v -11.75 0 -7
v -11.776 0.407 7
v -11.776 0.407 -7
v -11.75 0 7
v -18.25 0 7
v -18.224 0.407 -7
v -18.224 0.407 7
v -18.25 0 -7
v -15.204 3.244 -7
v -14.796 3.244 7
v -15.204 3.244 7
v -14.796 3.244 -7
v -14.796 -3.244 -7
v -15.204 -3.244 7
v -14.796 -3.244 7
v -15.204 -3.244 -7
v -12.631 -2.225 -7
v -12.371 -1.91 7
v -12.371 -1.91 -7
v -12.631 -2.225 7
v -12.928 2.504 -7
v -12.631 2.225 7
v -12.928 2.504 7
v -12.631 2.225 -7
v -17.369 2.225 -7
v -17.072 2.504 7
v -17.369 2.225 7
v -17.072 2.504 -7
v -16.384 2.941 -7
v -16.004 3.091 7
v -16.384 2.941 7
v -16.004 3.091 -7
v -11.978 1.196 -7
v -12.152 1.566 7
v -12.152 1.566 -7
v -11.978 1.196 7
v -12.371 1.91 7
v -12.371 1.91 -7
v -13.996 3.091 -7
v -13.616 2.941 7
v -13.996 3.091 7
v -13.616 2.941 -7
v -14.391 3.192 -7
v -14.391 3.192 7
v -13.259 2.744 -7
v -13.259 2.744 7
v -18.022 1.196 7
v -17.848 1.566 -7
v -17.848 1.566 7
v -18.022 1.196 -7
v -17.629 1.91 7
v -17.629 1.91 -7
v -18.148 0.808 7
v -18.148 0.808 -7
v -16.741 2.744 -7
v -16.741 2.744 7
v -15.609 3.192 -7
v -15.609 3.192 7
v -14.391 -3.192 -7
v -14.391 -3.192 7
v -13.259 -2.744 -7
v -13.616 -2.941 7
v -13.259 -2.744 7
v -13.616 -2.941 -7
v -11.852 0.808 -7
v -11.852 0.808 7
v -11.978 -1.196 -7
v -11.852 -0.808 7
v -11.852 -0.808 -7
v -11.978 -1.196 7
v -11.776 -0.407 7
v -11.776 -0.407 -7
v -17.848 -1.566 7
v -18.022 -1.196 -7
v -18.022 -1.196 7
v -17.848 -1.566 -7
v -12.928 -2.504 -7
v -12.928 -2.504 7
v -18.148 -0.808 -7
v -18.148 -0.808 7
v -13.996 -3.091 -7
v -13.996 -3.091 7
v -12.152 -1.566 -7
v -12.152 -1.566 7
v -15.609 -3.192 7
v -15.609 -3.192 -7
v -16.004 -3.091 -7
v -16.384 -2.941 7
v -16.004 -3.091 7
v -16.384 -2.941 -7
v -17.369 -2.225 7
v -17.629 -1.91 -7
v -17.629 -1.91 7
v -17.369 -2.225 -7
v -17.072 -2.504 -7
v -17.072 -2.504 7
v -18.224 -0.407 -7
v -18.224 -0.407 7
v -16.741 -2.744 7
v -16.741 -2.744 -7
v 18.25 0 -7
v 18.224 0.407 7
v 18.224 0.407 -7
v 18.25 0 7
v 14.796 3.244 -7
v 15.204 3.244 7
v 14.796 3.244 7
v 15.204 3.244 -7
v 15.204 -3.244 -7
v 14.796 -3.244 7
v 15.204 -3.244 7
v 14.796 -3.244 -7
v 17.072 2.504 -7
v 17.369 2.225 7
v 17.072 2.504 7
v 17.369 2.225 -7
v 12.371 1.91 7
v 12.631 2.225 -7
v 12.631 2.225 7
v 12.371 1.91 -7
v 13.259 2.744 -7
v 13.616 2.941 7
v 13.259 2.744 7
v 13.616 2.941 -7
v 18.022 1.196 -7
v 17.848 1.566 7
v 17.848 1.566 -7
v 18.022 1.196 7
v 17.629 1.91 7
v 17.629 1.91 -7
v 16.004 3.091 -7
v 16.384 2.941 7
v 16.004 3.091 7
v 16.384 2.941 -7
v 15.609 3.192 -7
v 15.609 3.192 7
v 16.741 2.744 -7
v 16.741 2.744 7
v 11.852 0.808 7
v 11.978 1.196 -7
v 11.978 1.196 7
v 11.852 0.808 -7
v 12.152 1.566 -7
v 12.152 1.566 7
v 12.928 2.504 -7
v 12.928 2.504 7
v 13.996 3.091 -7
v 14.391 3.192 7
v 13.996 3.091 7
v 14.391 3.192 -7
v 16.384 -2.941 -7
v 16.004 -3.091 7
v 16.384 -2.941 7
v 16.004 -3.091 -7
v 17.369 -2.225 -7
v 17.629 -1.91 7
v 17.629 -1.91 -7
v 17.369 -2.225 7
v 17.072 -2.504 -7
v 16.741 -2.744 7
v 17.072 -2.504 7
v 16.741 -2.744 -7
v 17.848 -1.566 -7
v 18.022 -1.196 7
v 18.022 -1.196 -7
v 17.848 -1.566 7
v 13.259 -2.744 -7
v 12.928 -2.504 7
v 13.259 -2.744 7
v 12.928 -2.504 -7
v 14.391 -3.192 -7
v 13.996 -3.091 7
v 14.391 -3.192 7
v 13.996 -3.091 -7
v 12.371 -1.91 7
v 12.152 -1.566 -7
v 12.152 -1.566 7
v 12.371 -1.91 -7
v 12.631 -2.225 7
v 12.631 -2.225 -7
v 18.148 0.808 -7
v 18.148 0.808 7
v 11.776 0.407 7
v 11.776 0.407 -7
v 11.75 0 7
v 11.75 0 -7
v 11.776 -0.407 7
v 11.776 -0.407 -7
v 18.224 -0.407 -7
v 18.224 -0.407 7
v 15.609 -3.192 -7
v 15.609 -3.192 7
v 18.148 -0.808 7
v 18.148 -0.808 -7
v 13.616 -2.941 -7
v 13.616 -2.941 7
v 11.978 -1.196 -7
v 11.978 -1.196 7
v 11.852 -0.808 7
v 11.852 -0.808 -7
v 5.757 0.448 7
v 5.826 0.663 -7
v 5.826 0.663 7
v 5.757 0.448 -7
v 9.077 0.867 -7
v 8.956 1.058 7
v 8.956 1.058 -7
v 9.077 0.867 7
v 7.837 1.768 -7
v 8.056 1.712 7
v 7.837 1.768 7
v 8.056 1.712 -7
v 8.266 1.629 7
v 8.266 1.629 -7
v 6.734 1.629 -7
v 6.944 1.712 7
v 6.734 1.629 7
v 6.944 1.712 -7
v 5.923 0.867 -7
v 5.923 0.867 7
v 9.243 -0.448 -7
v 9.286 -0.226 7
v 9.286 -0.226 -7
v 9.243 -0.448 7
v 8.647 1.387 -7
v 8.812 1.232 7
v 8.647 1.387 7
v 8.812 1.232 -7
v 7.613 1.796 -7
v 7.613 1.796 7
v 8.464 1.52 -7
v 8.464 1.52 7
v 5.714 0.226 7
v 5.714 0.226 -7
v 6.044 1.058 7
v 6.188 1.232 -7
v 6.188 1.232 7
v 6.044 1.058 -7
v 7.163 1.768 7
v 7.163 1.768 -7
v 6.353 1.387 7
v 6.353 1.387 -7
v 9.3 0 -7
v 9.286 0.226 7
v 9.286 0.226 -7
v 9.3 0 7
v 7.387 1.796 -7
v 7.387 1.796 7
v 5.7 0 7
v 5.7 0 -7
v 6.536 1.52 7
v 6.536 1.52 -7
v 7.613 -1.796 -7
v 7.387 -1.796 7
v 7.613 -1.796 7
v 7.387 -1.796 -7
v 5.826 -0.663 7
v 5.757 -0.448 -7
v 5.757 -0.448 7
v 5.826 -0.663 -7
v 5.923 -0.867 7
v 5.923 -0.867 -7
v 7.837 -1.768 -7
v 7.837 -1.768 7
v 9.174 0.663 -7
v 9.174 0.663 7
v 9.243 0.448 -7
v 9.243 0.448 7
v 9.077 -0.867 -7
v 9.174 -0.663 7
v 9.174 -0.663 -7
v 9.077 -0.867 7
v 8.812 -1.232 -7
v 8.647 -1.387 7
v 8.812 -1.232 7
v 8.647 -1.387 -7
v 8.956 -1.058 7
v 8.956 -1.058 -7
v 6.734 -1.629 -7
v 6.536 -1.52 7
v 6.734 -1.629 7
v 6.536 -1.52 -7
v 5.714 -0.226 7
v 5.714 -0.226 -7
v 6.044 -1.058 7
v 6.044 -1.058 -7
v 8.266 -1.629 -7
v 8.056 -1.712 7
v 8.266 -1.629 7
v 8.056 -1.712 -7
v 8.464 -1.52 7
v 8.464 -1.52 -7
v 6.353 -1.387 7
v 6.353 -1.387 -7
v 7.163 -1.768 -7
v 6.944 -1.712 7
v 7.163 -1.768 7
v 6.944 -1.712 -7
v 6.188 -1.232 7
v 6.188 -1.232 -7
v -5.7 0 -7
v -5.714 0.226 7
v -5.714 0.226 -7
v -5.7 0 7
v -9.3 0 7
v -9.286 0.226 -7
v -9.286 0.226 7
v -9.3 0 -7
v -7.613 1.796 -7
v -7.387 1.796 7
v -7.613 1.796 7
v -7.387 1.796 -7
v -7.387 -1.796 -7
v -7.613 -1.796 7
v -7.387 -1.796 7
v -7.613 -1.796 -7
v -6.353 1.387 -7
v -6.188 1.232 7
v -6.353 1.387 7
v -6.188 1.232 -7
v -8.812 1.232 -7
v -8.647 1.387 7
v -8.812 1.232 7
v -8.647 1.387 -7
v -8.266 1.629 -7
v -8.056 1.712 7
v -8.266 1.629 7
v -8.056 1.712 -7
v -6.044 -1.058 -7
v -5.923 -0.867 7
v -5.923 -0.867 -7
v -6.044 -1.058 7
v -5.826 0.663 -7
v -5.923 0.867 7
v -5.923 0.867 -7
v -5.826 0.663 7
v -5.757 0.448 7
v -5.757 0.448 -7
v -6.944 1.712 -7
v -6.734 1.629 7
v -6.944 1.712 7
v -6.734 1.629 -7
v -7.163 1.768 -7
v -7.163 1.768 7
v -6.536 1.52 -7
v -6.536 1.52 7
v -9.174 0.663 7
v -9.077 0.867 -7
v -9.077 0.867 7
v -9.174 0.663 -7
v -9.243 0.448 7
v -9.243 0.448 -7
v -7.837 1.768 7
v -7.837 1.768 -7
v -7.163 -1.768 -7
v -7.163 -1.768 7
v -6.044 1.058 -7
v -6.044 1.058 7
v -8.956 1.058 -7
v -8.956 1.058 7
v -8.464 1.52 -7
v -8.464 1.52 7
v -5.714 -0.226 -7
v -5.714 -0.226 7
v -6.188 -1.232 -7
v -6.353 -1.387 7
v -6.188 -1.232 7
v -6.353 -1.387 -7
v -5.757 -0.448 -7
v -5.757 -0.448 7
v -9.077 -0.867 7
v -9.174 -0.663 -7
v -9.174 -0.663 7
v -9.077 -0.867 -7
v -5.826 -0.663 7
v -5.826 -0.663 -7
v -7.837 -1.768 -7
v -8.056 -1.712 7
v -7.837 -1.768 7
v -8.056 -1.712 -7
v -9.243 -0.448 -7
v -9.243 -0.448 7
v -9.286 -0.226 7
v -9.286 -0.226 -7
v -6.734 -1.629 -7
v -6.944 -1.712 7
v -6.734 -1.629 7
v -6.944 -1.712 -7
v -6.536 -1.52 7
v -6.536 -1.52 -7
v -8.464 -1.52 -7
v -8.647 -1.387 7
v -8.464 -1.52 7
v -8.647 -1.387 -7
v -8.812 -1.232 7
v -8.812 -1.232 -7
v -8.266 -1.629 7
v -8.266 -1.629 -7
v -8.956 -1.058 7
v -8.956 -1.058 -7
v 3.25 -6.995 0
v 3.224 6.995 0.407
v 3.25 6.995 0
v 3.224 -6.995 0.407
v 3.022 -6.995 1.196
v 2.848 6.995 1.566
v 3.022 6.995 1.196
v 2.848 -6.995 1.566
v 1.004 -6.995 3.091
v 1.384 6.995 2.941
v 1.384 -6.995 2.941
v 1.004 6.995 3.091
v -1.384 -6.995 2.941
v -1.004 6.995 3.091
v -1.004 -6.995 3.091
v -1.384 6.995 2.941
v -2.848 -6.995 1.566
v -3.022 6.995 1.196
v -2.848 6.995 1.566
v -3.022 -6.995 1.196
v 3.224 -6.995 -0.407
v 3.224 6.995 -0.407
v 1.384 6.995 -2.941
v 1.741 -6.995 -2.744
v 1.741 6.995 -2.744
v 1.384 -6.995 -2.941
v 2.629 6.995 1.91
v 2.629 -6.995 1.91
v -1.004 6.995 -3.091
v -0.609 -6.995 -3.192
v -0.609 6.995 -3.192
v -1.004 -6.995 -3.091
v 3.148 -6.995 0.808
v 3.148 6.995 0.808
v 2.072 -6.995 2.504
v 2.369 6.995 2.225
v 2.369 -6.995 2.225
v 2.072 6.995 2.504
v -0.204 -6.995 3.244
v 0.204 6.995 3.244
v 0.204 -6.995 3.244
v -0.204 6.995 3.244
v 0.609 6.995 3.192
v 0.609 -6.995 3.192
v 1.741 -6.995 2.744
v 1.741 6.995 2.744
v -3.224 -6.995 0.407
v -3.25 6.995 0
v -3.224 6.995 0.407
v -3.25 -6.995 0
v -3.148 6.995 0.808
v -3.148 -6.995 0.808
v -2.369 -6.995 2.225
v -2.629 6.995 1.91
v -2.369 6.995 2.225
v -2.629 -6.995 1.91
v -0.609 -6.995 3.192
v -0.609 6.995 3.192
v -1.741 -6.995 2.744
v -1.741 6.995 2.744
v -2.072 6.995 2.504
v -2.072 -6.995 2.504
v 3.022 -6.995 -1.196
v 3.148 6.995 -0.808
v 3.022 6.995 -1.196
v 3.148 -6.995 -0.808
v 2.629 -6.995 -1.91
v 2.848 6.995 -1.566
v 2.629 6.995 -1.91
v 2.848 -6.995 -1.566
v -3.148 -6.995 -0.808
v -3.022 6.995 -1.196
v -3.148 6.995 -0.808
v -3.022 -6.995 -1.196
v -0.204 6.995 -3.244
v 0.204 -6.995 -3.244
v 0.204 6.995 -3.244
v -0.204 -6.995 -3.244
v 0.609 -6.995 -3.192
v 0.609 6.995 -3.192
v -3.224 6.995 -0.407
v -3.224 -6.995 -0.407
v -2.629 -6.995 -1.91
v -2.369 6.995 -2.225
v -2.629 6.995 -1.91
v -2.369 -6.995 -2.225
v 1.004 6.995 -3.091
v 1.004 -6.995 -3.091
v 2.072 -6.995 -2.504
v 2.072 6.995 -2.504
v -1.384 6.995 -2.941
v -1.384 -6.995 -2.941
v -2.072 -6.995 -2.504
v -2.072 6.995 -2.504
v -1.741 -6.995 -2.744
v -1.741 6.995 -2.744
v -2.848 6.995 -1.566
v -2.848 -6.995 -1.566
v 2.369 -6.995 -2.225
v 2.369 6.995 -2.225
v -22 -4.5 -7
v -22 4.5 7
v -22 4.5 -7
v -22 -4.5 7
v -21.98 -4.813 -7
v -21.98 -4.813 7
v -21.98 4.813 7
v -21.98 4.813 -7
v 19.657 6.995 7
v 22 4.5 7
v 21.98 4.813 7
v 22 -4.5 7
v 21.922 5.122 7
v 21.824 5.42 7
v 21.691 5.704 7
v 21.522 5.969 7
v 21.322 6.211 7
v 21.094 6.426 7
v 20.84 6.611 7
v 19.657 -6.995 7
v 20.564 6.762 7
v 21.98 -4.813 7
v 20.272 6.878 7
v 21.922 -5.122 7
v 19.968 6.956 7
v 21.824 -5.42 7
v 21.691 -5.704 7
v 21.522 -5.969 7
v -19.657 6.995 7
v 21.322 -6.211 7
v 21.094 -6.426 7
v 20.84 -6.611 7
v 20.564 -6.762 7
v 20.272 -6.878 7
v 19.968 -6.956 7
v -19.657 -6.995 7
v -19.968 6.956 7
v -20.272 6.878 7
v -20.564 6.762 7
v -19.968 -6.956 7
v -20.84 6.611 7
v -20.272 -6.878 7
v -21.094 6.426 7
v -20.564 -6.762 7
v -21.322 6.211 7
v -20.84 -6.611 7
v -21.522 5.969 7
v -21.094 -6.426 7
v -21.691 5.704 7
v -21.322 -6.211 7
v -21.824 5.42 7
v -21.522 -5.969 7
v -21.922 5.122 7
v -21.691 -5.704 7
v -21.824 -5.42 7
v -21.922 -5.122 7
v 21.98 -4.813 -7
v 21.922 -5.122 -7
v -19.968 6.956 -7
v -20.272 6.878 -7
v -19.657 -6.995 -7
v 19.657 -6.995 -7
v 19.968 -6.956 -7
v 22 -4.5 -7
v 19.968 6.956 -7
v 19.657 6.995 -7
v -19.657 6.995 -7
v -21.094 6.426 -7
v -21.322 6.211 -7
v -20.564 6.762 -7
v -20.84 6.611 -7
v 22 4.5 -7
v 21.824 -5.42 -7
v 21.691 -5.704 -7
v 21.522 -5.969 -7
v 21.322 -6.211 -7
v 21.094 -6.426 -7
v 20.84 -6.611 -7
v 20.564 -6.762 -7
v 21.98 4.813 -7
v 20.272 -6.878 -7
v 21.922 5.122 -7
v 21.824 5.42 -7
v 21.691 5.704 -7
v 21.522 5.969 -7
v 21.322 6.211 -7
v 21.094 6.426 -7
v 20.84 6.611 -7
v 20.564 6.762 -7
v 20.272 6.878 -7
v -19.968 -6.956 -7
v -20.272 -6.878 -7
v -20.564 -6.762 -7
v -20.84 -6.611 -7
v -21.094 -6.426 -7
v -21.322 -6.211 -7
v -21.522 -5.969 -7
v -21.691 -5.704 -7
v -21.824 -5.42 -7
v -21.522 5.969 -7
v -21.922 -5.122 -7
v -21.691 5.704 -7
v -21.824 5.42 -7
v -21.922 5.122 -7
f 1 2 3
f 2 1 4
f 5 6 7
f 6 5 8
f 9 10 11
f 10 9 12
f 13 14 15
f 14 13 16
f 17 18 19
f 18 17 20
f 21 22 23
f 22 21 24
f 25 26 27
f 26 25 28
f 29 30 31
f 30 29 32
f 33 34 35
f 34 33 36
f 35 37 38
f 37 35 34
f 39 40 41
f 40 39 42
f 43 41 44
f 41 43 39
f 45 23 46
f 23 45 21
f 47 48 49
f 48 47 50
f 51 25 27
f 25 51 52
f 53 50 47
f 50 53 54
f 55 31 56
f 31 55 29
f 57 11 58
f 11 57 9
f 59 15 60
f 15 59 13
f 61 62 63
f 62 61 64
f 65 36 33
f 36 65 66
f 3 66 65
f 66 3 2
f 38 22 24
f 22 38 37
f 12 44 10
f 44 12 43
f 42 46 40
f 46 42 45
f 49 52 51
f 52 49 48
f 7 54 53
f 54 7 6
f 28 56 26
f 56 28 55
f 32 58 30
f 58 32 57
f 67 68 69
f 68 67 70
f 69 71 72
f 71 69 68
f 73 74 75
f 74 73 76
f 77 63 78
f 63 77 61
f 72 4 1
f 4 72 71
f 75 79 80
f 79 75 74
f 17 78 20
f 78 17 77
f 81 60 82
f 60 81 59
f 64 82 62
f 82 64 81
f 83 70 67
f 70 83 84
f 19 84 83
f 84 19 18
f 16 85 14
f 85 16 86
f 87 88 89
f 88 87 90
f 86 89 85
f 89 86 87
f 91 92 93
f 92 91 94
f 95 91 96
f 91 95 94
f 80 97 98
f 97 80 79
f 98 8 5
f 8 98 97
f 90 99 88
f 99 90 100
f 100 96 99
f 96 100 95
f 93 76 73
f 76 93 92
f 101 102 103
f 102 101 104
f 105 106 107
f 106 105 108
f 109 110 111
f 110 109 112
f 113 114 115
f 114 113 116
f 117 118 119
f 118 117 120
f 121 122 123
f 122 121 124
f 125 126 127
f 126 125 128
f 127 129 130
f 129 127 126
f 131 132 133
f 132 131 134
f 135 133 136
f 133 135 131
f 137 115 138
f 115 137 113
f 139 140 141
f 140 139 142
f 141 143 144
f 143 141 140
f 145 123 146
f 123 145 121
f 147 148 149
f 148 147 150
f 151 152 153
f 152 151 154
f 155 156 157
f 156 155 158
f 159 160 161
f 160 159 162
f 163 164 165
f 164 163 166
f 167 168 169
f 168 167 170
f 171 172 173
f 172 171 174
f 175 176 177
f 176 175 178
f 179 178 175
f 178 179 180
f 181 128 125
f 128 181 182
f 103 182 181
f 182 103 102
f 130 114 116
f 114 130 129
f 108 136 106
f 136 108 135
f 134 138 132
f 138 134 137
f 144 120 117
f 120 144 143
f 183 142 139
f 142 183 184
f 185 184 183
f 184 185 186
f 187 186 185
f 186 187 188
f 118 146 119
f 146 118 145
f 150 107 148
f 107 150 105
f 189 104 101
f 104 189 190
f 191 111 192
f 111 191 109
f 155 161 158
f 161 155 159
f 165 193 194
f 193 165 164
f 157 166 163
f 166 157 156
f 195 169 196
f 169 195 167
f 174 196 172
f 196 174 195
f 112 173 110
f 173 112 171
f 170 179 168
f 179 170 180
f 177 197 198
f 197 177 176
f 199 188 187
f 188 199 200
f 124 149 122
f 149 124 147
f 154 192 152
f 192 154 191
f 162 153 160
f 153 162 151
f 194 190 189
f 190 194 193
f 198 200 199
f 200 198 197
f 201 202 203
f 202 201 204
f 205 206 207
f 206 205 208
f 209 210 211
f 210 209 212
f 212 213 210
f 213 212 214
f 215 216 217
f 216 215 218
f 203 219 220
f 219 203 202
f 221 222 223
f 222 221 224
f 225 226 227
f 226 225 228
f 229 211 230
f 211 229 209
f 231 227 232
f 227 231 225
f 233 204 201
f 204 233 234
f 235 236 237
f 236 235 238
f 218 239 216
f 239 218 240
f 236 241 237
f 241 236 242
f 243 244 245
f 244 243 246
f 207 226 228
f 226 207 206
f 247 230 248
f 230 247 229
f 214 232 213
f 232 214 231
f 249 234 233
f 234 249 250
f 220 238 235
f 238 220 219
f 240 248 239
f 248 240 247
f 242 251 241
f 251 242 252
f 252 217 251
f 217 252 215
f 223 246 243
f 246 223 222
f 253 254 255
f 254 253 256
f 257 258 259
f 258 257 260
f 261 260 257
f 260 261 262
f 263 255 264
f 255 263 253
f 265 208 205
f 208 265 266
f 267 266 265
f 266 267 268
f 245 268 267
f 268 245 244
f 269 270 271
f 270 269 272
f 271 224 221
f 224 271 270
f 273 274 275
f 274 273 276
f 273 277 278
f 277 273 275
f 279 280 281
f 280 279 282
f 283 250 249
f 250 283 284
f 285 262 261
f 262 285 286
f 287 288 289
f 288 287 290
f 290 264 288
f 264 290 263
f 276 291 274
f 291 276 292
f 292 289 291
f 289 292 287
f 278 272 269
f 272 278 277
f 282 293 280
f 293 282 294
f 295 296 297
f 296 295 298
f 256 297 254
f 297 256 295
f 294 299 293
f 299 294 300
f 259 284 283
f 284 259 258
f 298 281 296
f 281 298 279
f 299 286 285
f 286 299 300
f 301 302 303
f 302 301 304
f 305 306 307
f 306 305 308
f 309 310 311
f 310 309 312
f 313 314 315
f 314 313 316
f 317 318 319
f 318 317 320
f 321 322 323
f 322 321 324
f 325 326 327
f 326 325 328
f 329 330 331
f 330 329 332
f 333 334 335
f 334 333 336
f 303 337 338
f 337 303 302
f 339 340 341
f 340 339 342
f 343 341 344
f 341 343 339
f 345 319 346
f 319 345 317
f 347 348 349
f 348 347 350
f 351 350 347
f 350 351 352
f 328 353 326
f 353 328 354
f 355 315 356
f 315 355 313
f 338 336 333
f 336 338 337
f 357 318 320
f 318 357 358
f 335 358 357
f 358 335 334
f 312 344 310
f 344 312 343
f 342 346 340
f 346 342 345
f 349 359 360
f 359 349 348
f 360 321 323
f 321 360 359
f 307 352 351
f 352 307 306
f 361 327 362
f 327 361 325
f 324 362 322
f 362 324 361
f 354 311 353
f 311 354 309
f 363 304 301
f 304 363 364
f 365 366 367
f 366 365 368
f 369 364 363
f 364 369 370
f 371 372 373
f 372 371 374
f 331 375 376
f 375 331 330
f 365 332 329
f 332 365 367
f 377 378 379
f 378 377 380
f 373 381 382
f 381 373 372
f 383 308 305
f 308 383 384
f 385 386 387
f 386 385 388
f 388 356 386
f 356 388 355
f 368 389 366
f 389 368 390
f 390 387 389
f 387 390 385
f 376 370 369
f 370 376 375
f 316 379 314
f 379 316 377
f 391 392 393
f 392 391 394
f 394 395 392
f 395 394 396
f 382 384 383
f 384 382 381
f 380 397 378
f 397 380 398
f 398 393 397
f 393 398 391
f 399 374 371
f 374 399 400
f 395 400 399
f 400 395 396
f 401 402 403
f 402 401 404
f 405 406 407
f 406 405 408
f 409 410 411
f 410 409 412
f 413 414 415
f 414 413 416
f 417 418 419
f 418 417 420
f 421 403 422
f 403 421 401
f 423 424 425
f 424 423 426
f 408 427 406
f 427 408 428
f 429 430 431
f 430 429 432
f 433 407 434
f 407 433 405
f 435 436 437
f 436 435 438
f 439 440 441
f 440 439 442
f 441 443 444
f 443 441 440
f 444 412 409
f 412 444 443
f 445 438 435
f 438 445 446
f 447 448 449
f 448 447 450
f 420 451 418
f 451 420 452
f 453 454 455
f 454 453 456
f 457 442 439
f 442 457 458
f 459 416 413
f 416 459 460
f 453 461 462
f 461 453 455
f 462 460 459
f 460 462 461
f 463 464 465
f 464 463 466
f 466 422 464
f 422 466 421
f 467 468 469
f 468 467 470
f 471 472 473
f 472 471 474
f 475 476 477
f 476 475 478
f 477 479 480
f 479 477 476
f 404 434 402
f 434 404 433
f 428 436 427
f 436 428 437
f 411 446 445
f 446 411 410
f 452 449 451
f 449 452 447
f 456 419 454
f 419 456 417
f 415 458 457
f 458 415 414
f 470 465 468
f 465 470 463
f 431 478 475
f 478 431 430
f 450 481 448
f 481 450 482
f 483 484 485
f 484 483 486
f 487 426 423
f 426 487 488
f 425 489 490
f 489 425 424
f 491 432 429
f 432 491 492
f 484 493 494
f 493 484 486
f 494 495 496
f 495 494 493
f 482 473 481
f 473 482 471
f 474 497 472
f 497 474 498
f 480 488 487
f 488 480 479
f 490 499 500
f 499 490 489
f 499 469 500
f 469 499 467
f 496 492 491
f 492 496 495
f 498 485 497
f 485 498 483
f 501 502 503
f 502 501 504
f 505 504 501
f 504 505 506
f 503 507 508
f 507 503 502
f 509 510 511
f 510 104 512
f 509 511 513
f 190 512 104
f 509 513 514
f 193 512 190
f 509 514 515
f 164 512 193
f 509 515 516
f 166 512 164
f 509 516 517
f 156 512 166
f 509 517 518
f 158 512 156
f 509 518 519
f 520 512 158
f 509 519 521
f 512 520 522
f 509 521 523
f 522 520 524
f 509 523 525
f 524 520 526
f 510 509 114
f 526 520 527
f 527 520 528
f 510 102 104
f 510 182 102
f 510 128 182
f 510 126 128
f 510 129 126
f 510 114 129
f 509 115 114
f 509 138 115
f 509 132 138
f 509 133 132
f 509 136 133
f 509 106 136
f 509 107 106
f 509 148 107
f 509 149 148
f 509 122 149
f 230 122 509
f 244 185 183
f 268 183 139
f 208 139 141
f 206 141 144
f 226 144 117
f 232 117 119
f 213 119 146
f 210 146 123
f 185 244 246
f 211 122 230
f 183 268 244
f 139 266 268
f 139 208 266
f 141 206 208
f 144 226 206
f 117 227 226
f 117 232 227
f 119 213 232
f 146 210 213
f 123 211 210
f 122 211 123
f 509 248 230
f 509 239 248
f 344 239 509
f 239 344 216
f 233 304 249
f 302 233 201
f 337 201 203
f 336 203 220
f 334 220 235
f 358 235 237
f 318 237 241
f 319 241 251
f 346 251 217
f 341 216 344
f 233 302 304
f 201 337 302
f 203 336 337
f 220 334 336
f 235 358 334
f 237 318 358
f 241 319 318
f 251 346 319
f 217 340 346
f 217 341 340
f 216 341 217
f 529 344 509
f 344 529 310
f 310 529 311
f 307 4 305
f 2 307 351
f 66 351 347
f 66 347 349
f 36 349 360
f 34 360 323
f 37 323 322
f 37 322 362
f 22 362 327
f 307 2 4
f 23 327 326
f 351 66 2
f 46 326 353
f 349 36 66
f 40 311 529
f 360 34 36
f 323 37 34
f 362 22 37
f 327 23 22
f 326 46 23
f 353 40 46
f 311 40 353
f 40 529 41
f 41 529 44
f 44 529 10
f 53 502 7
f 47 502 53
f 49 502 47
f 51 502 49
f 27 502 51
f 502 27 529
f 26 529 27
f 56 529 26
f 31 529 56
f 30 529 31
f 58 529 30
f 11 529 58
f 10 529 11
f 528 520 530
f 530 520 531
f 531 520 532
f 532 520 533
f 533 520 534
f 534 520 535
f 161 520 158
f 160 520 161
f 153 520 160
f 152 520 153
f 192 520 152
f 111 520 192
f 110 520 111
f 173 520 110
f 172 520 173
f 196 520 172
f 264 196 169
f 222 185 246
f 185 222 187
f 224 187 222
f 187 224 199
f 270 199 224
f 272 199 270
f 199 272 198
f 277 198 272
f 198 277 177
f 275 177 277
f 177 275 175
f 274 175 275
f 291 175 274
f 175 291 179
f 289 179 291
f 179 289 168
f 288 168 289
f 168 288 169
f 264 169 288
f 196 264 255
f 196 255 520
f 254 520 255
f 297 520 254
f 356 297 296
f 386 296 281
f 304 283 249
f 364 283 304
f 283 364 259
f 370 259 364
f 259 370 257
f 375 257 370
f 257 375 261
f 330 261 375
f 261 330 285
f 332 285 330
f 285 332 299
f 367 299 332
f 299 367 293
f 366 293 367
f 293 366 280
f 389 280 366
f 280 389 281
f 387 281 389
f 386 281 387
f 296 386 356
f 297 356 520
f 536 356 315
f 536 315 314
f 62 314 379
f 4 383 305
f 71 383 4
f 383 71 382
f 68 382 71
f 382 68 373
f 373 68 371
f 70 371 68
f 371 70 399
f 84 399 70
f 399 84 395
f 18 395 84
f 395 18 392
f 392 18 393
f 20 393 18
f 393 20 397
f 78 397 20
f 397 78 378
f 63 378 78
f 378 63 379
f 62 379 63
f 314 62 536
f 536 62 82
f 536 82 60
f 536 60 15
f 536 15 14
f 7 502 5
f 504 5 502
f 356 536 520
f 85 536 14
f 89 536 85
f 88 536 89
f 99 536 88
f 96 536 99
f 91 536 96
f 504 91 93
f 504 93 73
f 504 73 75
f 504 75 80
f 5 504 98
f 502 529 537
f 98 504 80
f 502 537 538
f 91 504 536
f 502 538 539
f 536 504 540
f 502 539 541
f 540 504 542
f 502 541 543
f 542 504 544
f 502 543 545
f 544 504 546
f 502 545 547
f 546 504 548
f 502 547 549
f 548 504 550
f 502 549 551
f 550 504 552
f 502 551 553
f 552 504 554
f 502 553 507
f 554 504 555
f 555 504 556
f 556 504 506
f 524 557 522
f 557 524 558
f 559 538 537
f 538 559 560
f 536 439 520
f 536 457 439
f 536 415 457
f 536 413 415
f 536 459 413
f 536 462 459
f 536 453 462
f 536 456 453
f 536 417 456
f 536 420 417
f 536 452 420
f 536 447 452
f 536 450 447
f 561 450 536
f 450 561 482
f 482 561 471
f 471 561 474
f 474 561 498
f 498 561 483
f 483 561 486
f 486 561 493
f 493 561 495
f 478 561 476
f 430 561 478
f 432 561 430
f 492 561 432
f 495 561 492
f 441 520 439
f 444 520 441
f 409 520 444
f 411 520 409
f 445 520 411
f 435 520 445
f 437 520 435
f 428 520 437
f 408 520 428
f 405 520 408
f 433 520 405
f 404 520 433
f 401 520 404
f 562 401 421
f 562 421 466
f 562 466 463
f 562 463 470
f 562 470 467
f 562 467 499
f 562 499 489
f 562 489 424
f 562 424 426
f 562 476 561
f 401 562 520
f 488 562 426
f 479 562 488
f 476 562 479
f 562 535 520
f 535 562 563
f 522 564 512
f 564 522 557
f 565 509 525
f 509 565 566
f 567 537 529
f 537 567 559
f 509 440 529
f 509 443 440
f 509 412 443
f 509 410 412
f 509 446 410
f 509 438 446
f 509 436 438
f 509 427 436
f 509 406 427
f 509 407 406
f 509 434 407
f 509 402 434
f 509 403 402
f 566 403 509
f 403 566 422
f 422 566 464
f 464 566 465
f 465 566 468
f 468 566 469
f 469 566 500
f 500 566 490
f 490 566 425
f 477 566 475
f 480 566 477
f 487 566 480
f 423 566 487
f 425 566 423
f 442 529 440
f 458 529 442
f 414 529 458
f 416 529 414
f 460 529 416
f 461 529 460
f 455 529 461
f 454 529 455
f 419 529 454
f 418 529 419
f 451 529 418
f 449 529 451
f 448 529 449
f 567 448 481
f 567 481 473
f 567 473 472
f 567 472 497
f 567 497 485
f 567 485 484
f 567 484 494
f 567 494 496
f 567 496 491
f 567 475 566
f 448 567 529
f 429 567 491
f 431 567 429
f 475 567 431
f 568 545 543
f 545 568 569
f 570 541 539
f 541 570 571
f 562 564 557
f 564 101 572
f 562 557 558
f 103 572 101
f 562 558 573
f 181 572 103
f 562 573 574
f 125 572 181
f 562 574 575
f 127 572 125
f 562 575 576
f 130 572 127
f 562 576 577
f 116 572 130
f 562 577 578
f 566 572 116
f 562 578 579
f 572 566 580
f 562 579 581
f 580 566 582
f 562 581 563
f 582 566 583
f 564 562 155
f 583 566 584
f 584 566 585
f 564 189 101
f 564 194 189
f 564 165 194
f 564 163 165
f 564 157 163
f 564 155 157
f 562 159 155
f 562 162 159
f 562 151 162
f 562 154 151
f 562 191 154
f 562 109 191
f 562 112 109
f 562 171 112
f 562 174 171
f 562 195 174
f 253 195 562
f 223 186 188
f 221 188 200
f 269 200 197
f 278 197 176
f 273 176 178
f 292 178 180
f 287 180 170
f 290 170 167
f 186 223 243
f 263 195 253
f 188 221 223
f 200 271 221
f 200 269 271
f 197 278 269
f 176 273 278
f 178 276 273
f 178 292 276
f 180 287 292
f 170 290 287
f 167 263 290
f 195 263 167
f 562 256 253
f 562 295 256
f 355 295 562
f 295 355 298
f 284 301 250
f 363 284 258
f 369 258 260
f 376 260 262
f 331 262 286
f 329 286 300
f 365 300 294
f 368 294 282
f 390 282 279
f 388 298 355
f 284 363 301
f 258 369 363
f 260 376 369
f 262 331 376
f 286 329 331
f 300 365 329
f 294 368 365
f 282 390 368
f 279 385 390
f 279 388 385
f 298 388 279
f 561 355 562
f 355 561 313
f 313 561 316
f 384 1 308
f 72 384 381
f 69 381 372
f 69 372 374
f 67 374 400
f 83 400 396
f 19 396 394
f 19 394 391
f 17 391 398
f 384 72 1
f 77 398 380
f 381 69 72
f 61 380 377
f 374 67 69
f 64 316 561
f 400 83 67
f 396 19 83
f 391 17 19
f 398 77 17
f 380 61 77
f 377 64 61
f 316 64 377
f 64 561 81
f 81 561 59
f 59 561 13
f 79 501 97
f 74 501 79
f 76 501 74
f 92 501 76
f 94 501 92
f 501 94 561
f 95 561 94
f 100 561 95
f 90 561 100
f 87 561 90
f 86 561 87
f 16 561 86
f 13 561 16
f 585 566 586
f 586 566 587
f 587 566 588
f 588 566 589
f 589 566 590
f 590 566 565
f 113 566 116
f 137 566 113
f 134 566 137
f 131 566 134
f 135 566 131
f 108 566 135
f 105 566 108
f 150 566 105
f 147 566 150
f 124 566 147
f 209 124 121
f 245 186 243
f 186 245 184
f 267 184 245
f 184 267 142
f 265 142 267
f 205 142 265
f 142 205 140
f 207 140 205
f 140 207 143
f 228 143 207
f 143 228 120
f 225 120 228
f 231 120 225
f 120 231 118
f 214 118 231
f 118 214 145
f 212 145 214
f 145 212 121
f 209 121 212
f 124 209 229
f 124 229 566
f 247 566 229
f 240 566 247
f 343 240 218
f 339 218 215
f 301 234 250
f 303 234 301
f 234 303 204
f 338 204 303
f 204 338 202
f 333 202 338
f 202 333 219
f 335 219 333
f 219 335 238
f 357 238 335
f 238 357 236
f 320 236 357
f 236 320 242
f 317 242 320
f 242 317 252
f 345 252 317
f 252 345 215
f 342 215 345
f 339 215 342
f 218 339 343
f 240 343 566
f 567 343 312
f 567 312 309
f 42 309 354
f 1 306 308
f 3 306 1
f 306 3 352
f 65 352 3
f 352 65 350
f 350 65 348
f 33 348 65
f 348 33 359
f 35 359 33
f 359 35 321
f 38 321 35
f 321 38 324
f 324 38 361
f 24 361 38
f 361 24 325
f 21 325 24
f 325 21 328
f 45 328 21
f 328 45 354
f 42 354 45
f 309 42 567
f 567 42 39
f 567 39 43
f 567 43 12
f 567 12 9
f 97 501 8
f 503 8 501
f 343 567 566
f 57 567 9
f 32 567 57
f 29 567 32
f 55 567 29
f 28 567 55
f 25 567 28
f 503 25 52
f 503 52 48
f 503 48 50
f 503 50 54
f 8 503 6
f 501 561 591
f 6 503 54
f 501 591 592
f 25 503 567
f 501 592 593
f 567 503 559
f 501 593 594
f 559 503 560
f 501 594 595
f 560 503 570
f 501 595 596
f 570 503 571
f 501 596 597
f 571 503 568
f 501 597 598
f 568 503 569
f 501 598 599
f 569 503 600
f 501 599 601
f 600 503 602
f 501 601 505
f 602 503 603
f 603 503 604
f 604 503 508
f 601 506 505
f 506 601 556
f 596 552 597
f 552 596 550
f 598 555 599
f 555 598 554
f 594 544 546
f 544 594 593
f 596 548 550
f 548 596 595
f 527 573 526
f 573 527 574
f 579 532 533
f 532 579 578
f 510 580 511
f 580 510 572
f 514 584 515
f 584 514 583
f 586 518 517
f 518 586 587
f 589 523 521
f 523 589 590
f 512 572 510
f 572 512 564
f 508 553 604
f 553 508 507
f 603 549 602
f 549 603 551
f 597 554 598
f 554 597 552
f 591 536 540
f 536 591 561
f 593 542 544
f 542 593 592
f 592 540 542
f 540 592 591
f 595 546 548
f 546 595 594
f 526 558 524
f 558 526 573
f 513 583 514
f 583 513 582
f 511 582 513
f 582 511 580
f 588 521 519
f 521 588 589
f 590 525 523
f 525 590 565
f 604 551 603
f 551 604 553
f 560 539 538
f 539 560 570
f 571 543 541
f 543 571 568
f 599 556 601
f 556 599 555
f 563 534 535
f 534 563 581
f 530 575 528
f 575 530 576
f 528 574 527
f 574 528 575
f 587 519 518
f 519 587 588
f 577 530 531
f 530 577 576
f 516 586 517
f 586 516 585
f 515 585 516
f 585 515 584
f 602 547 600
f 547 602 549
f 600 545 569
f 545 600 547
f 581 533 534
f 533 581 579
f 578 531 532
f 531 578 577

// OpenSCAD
$fn = 50;


difference() {
	union() {
		*color(alpha = 1.0000000000, c = "gray") {
			translate(v = [0, 7, 0]) {
				linear_extrude(height = 1) {
					text(font = "Arial:style=Bold", halign = "center", size = 4.5000000000, text = "COMMENT plate main", valign = "center");
				}
			}
		}
		*color(alpha = 1.0000000000, c = "gray") {
			translate(v = [0, 14, -7.0000000000]) {
				linear_extrude(height = 1) {
					text(font = "Arial:style=Bold", halign = "center", size = 4.5000000000, text = "COMMENT description oobb_plate_shape_p_type_14_depth_0_0_-7.0_pos_3_width_1_height_14_thickness_ninety_degree_extra_2.5_r", valign = "center");
				}
			}
		}
		translate(v = [0, 0, -7.0000000000]) {
			hull() {
				translate(v = [-19.5000000000, 4.5000000000, 0]) {
					cylinder(h = 14, r = 2.5000000000);
				}
				translate(v = [19.5000000000, 4.5000000000, 0]) {
					cylinder(h = 14, r = 2.5000000000);
				}
				translate(v = [-19.5000000000, -4.5000000000, 0]) {
					cylinder(h = 14, r = 2.5000000000);
				}
				translate(v = [19.5000000000, -4.5000000000, 0]) {
					cylinder(h = 14, r = 2.5000000000);
				}
			}
		}
	}
	union() {
		*color(alpha = 1.0000000000, c = "gray") {
			translate(v = [0, 7, 0]) {
				linear_extrude(height = 1) {
					text(font = "Arial:style=Bold", halign = "center", size = 4.5000000000, text = "COMMENT holes main", valign = "center");
				}
			}
		}
		*color(alpha = 1.0000000000, c = "gray") {
			translate(v = [0, 14, 0]) {
				linear_extrude(height = 1) {
					text(font = "Arial:style=Bold", halign = "center", size = 4.5000000000, text = "COMMENT description oobb_holes_shape_n_type_m6_radius_name_3_width_1_height_14_thickness_ninety_degree_extra_true_both_holes_single_holes_1_1_3_1_loc", valign = "center");
				}
			}
		}
		translate(v = [-15.0000000000, 0.0000000000, -50.0000000000]) {
			cylinder(h = 100, r = 3.2500000000);
		}
		translate(v = [15.0000000000, 0.0000000000, -50.0000000000]) {
			cylinder(h = 100, r = 3.2500000000);
		}
		*color(alpha = 1.0000000000, c = "gray") {
			translate(v = [0, 14, 0]) {
				linear_extrude(height = 1) {
					text(font = "Arial:style=Bold", halign = "center", size = 4.5000000000, text = "COMMENT description oobb_holes_shape_n_type_m3_radius_name_3_width_1_height_14_thickness_ninety_degree_extra_true_both_holes_single_holes_2.5_1_1.5_1_loc", valign = "center");
				}
			}
		}
		translate(v = [7.5000000000, 0.0000000000, -50.0000000000]) {
			cylinder(h = 100, r = 1.8000000000);
		}
		translate(v = [-7.5000000000, 0.0000000000, -50.0000000000]) {
			cylinder(h = 100, r = 1.8000000000);
		}
		*color(alpha = 1.0000000000, c = "gray") {
			translate(v = [0, 7, 0]) {
				linear_extrude(height = 1) {
					text(font = "Arial:style=Bold", halign = "center", size = 4.5000000000, text = "COMMENT holes main", valign = "center");
				}
			}
		}
		*color(alpha = 1.0000000000, c = "gray") {
			translate(v = [0.0000000000, 21.0000000000, 0]) {
				rotate(a = [90, 0, 0]) {
					linear_extrude(height = 1) {
						text(font = "Arial:style=Bold", halign = "center", size = 4.5000000000, text = "COMMENT description oobb_hole_shape_n_type_m6_radius_name_14_depth_0.0_7.0_0_pos_3_width_1_height_14_thickness_ninety_degree_extra_90_0_0_rot", valign = "center");
					}
				}
			}
		}
		translate(v = [0.0000000000, 7.0000000000, 0]) {
			rotate(a = [90, 0, 0]) {
				cylinder(h = 14, r = 3.2500000000);
			}
		}
	}
}
